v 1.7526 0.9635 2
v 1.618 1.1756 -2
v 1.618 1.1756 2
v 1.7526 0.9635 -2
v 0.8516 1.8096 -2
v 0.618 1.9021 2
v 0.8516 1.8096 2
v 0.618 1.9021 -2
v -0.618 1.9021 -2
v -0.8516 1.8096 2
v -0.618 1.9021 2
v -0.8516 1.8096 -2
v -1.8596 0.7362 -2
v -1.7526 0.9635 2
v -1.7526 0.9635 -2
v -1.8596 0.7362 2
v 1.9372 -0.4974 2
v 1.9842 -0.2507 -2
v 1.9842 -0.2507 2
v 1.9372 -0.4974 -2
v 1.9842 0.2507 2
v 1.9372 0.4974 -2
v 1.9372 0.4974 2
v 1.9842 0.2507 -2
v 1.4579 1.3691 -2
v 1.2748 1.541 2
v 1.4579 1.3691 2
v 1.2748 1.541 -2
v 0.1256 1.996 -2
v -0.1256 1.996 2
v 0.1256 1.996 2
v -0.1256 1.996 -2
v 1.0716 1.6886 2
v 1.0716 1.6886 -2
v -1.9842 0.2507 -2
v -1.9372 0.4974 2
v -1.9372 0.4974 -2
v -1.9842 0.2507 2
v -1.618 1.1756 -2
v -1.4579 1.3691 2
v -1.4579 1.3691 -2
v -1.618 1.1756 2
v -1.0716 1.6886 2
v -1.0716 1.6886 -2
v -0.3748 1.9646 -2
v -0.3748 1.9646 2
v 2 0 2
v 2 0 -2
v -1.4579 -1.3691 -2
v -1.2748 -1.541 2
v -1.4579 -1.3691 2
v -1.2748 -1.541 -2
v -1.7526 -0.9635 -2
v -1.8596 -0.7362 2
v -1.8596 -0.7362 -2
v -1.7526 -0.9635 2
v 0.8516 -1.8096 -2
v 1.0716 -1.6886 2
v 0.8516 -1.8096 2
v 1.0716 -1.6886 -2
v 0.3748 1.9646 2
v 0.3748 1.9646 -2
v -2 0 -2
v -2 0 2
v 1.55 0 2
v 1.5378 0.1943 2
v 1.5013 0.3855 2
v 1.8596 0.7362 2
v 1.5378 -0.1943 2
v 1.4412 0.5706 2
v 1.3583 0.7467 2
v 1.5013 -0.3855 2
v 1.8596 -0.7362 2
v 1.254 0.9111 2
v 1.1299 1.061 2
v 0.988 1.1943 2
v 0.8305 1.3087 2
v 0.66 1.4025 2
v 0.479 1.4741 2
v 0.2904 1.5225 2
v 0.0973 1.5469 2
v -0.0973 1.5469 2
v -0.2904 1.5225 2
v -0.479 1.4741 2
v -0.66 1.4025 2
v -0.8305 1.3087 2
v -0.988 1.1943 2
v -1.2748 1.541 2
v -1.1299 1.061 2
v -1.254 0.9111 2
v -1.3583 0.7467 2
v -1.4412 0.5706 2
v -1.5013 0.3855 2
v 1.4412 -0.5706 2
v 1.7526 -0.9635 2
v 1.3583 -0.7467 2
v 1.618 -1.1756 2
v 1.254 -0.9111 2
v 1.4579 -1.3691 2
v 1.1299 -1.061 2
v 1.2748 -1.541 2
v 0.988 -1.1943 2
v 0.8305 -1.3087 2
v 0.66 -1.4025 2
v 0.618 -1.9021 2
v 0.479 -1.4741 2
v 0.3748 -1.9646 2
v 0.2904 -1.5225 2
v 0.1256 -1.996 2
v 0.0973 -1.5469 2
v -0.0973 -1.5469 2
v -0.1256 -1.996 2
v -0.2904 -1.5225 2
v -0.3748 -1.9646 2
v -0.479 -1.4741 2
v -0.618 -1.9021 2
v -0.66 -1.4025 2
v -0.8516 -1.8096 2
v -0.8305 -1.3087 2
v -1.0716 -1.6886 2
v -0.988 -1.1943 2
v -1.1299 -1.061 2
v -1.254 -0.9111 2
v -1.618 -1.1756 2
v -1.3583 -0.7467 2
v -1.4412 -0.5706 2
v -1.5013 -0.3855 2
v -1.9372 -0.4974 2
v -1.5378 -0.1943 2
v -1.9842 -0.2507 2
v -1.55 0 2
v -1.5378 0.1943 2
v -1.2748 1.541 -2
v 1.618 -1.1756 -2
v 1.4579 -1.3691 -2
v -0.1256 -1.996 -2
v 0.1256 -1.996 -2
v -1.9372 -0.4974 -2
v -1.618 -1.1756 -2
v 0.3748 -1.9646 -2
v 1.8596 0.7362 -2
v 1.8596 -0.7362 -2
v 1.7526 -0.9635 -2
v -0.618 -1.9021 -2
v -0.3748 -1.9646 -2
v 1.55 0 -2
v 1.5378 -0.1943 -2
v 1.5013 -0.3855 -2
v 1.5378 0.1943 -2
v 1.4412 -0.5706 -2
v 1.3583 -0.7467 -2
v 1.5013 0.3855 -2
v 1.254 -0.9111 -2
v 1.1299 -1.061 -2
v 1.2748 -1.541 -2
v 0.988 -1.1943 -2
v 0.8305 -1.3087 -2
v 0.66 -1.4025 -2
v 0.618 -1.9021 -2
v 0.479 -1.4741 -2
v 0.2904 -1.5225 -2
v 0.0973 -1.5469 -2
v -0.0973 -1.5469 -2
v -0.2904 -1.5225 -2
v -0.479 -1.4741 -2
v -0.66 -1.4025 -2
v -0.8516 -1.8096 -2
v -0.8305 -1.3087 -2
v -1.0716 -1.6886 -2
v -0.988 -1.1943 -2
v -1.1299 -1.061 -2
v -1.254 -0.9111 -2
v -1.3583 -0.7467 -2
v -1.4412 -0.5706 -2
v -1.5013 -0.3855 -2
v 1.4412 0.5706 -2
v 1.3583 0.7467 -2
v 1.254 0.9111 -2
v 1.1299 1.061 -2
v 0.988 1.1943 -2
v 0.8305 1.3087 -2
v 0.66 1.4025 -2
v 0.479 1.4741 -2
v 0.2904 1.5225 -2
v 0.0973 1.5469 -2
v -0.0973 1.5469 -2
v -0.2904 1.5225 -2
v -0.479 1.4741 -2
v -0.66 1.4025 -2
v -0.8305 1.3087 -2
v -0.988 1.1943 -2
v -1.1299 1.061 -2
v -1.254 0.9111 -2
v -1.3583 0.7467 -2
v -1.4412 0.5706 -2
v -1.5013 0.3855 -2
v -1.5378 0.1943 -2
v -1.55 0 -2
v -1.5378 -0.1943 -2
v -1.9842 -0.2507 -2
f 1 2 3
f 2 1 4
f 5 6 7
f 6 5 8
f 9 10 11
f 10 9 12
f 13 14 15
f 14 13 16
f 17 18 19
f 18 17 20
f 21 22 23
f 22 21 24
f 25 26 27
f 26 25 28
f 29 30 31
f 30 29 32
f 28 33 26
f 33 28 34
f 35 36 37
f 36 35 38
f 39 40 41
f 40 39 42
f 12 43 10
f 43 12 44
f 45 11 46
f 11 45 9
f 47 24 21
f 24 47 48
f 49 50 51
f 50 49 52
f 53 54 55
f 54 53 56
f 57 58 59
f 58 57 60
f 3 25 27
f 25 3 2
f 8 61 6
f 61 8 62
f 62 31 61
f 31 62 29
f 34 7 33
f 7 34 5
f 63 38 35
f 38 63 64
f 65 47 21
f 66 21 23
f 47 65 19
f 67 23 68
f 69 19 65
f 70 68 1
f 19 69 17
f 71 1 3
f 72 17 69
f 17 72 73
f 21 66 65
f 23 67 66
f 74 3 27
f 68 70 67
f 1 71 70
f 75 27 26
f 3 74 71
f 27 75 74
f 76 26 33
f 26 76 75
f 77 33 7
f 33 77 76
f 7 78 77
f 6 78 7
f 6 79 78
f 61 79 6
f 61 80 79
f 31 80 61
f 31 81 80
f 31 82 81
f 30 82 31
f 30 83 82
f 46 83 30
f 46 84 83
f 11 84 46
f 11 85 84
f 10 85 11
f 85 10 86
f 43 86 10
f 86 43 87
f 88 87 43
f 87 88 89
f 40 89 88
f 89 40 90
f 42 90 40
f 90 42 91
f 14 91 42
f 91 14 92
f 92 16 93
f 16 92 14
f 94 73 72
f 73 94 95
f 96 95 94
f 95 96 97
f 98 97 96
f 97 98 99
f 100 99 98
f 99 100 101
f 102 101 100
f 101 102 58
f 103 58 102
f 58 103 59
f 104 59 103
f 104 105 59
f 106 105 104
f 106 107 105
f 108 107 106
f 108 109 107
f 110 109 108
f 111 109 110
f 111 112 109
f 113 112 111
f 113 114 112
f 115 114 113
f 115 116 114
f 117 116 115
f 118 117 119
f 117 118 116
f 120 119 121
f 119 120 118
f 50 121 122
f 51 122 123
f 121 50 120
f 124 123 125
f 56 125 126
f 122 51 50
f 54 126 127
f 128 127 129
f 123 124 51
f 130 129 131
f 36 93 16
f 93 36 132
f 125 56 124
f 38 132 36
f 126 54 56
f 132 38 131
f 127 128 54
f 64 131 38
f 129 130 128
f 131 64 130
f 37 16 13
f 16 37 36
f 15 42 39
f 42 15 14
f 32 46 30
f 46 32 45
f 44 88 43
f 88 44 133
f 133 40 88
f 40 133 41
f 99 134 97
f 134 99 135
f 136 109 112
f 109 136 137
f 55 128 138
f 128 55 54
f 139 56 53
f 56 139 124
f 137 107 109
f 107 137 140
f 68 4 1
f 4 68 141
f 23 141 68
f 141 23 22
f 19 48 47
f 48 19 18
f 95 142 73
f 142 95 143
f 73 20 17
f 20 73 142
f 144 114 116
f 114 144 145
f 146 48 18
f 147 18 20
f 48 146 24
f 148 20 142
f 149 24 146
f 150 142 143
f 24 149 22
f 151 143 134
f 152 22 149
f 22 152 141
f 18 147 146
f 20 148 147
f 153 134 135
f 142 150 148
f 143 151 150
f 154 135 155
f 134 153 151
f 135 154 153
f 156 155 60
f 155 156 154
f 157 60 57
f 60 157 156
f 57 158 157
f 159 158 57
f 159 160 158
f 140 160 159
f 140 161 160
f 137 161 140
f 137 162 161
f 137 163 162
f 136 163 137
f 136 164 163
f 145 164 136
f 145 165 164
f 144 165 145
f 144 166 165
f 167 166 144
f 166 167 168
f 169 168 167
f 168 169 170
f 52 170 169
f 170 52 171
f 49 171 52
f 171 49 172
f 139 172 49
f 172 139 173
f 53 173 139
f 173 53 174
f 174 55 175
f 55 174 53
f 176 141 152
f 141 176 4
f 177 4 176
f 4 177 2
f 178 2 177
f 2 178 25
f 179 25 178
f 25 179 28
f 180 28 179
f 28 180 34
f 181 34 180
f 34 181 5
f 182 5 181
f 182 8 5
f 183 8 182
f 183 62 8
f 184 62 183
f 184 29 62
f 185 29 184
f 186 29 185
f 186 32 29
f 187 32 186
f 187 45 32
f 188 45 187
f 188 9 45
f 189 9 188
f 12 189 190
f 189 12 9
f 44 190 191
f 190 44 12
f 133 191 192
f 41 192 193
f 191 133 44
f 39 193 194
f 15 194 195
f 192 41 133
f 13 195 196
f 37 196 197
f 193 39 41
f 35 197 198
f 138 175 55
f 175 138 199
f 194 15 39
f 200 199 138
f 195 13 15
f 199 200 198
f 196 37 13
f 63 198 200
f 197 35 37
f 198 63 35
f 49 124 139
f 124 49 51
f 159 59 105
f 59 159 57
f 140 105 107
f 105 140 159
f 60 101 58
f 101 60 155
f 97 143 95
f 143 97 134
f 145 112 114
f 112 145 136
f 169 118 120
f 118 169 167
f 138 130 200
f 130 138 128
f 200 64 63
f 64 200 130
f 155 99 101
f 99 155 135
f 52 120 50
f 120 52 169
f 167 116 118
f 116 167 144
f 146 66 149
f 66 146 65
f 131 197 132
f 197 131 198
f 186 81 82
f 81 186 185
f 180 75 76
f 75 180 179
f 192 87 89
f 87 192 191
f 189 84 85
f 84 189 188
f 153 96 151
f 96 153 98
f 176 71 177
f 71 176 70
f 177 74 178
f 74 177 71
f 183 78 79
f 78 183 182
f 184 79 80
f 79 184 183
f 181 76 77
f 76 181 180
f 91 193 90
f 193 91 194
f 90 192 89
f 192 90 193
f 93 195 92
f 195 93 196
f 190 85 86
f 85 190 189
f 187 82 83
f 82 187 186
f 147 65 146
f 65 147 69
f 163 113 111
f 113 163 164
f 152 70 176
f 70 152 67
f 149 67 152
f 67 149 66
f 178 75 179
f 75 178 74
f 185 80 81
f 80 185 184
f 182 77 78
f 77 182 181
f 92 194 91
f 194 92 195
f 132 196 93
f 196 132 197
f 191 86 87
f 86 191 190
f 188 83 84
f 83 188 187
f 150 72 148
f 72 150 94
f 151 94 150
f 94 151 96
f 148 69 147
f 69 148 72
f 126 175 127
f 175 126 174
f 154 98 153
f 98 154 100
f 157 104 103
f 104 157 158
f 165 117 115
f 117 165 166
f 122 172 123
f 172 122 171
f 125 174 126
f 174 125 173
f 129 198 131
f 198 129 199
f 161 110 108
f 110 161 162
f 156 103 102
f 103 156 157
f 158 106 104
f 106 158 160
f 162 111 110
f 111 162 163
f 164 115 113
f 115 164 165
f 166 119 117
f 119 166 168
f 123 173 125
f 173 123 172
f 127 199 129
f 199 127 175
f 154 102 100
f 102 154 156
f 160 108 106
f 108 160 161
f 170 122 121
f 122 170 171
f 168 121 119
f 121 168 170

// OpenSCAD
$fn = 50;


difference() {
	union() {
		translate(v = [0, 0, -2.0000000000]) {
			cylinder(h = 4, r = 2.0000000000);
		}
	}
	union() {
		translate(v = [0, 0, -100.0000000000]) {
			cylinder(h = 200, r = 1.5500000000);
		}
	}
}
